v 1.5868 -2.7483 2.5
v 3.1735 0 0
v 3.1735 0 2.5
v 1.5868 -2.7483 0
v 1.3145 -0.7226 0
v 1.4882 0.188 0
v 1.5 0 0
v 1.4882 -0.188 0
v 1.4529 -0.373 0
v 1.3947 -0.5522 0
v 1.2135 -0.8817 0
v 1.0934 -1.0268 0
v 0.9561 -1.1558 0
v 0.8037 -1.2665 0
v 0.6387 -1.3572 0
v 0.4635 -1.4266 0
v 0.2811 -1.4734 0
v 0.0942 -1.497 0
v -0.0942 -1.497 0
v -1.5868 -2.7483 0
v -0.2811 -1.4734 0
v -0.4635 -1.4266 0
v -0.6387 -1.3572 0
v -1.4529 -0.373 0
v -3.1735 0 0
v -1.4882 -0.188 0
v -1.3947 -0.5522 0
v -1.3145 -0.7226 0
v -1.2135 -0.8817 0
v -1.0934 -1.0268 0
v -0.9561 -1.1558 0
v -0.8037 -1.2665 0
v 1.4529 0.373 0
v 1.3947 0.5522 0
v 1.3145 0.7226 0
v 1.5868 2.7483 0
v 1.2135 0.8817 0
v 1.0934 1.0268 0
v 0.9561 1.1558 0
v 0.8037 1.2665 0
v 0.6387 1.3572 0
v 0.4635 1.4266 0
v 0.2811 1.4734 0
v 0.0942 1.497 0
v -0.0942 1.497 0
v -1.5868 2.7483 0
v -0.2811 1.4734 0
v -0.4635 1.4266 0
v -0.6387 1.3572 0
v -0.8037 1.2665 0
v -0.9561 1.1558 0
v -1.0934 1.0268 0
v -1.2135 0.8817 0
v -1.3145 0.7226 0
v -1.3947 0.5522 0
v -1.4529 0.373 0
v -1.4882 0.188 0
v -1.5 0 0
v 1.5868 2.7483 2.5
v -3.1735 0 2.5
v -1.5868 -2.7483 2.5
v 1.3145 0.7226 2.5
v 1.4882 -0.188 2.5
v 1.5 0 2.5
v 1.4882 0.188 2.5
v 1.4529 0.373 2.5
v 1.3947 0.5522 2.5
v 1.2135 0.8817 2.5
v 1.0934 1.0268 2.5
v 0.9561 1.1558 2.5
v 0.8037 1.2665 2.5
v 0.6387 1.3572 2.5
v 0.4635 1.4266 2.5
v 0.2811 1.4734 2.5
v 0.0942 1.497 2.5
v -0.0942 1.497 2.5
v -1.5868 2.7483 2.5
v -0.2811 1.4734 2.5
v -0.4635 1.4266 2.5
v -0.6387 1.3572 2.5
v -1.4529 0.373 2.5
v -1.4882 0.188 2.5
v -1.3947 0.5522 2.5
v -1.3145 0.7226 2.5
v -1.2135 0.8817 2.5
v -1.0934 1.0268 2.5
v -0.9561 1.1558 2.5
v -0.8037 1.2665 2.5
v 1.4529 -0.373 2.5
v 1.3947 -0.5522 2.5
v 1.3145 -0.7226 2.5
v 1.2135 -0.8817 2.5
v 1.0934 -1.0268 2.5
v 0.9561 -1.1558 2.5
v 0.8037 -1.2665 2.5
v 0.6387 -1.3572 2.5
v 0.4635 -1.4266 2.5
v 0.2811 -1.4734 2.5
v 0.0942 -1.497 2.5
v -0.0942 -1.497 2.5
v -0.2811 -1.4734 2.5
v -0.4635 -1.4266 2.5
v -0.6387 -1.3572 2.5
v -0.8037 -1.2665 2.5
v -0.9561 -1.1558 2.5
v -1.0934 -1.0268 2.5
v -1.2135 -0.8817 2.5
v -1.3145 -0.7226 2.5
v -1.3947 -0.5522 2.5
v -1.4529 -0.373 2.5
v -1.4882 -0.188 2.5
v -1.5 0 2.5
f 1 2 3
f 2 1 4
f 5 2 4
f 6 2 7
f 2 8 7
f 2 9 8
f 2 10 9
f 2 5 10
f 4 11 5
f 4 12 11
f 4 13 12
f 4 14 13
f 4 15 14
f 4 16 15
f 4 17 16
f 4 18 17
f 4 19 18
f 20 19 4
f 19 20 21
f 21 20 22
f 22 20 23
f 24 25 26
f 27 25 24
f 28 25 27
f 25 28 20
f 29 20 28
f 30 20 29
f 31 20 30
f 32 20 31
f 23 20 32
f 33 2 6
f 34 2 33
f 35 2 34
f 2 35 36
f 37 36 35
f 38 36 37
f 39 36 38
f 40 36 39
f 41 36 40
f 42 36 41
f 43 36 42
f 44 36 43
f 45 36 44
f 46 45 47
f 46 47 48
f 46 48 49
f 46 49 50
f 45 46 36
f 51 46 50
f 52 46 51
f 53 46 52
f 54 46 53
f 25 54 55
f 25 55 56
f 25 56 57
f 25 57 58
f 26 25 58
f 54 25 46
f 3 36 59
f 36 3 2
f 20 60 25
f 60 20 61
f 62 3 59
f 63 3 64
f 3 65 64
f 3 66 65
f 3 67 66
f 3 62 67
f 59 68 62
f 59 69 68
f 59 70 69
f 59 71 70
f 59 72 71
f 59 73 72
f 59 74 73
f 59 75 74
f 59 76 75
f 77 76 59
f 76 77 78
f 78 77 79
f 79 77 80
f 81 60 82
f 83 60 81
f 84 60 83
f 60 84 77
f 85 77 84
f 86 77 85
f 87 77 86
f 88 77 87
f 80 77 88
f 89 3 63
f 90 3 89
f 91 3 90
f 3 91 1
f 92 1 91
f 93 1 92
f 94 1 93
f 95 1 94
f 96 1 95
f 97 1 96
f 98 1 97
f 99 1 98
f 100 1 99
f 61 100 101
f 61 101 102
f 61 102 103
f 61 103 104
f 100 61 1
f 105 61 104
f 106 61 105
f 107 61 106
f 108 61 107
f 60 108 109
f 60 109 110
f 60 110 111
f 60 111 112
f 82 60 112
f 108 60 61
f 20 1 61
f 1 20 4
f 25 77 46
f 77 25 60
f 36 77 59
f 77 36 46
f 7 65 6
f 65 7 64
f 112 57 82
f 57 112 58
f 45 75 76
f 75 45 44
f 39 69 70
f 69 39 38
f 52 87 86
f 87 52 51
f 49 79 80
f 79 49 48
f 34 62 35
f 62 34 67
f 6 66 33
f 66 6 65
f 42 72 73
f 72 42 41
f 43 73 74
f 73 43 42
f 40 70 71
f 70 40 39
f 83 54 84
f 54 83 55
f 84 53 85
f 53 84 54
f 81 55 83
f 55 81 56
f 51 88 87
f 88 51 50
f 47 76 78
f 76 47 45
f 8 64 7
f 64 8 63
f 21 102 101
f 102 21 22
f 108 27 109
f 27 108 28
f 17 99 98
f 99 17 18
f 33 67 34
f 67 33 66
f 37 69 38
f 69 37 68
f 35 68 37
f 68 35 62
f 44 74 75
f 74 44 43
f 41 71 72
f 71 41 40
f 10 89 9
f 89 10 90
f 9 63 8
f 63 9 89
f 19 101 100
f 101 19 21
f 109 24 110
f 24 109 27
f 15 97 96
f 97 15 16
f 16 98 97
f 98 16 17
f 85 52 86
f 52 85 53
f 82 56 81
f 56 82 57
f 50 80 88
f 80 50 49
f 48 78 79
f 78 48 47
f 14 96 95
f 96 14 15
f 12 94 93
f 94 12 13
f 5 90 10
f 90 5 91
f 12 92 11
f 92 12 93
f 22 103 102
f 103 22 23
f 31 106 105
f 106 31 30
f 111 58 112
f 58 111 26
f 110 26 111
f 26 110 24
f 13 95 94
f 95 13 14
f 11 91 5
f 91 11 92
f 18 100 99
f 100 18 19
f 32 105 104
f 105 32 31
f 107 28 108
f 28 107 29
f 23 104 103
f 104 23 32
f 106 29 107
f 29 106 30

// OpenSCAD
$fn = 50;


difference() {
	union() {
		translate(v = [0, 0, 0]) {
			rotate(a = [0, 0, 0]) {
				translate(v = [0, 0, 0]) {
					rotate(a = [0, 0, 0]) {
						linear_extrude(height = 2.5000000000) {
							polygon(points = [[3.1735000000, 0.0000000000], [1.5867500000, 2.7483316189], [-1.5867500000, 2.7483316189], [-3.1735000000, 0.0000000000], [-1.5867500000, -2.7483316189], [1.5867500000, -2.7483316189]]);
						}
					}
				}
			}
		}
	}
	union() {
		translate(v = [0, 0, -10]) {
			rotate(a = [0, 0, 0]) {
				cylinder(h = 20, r = 1.5000000000);
			}
		}
	}
}
